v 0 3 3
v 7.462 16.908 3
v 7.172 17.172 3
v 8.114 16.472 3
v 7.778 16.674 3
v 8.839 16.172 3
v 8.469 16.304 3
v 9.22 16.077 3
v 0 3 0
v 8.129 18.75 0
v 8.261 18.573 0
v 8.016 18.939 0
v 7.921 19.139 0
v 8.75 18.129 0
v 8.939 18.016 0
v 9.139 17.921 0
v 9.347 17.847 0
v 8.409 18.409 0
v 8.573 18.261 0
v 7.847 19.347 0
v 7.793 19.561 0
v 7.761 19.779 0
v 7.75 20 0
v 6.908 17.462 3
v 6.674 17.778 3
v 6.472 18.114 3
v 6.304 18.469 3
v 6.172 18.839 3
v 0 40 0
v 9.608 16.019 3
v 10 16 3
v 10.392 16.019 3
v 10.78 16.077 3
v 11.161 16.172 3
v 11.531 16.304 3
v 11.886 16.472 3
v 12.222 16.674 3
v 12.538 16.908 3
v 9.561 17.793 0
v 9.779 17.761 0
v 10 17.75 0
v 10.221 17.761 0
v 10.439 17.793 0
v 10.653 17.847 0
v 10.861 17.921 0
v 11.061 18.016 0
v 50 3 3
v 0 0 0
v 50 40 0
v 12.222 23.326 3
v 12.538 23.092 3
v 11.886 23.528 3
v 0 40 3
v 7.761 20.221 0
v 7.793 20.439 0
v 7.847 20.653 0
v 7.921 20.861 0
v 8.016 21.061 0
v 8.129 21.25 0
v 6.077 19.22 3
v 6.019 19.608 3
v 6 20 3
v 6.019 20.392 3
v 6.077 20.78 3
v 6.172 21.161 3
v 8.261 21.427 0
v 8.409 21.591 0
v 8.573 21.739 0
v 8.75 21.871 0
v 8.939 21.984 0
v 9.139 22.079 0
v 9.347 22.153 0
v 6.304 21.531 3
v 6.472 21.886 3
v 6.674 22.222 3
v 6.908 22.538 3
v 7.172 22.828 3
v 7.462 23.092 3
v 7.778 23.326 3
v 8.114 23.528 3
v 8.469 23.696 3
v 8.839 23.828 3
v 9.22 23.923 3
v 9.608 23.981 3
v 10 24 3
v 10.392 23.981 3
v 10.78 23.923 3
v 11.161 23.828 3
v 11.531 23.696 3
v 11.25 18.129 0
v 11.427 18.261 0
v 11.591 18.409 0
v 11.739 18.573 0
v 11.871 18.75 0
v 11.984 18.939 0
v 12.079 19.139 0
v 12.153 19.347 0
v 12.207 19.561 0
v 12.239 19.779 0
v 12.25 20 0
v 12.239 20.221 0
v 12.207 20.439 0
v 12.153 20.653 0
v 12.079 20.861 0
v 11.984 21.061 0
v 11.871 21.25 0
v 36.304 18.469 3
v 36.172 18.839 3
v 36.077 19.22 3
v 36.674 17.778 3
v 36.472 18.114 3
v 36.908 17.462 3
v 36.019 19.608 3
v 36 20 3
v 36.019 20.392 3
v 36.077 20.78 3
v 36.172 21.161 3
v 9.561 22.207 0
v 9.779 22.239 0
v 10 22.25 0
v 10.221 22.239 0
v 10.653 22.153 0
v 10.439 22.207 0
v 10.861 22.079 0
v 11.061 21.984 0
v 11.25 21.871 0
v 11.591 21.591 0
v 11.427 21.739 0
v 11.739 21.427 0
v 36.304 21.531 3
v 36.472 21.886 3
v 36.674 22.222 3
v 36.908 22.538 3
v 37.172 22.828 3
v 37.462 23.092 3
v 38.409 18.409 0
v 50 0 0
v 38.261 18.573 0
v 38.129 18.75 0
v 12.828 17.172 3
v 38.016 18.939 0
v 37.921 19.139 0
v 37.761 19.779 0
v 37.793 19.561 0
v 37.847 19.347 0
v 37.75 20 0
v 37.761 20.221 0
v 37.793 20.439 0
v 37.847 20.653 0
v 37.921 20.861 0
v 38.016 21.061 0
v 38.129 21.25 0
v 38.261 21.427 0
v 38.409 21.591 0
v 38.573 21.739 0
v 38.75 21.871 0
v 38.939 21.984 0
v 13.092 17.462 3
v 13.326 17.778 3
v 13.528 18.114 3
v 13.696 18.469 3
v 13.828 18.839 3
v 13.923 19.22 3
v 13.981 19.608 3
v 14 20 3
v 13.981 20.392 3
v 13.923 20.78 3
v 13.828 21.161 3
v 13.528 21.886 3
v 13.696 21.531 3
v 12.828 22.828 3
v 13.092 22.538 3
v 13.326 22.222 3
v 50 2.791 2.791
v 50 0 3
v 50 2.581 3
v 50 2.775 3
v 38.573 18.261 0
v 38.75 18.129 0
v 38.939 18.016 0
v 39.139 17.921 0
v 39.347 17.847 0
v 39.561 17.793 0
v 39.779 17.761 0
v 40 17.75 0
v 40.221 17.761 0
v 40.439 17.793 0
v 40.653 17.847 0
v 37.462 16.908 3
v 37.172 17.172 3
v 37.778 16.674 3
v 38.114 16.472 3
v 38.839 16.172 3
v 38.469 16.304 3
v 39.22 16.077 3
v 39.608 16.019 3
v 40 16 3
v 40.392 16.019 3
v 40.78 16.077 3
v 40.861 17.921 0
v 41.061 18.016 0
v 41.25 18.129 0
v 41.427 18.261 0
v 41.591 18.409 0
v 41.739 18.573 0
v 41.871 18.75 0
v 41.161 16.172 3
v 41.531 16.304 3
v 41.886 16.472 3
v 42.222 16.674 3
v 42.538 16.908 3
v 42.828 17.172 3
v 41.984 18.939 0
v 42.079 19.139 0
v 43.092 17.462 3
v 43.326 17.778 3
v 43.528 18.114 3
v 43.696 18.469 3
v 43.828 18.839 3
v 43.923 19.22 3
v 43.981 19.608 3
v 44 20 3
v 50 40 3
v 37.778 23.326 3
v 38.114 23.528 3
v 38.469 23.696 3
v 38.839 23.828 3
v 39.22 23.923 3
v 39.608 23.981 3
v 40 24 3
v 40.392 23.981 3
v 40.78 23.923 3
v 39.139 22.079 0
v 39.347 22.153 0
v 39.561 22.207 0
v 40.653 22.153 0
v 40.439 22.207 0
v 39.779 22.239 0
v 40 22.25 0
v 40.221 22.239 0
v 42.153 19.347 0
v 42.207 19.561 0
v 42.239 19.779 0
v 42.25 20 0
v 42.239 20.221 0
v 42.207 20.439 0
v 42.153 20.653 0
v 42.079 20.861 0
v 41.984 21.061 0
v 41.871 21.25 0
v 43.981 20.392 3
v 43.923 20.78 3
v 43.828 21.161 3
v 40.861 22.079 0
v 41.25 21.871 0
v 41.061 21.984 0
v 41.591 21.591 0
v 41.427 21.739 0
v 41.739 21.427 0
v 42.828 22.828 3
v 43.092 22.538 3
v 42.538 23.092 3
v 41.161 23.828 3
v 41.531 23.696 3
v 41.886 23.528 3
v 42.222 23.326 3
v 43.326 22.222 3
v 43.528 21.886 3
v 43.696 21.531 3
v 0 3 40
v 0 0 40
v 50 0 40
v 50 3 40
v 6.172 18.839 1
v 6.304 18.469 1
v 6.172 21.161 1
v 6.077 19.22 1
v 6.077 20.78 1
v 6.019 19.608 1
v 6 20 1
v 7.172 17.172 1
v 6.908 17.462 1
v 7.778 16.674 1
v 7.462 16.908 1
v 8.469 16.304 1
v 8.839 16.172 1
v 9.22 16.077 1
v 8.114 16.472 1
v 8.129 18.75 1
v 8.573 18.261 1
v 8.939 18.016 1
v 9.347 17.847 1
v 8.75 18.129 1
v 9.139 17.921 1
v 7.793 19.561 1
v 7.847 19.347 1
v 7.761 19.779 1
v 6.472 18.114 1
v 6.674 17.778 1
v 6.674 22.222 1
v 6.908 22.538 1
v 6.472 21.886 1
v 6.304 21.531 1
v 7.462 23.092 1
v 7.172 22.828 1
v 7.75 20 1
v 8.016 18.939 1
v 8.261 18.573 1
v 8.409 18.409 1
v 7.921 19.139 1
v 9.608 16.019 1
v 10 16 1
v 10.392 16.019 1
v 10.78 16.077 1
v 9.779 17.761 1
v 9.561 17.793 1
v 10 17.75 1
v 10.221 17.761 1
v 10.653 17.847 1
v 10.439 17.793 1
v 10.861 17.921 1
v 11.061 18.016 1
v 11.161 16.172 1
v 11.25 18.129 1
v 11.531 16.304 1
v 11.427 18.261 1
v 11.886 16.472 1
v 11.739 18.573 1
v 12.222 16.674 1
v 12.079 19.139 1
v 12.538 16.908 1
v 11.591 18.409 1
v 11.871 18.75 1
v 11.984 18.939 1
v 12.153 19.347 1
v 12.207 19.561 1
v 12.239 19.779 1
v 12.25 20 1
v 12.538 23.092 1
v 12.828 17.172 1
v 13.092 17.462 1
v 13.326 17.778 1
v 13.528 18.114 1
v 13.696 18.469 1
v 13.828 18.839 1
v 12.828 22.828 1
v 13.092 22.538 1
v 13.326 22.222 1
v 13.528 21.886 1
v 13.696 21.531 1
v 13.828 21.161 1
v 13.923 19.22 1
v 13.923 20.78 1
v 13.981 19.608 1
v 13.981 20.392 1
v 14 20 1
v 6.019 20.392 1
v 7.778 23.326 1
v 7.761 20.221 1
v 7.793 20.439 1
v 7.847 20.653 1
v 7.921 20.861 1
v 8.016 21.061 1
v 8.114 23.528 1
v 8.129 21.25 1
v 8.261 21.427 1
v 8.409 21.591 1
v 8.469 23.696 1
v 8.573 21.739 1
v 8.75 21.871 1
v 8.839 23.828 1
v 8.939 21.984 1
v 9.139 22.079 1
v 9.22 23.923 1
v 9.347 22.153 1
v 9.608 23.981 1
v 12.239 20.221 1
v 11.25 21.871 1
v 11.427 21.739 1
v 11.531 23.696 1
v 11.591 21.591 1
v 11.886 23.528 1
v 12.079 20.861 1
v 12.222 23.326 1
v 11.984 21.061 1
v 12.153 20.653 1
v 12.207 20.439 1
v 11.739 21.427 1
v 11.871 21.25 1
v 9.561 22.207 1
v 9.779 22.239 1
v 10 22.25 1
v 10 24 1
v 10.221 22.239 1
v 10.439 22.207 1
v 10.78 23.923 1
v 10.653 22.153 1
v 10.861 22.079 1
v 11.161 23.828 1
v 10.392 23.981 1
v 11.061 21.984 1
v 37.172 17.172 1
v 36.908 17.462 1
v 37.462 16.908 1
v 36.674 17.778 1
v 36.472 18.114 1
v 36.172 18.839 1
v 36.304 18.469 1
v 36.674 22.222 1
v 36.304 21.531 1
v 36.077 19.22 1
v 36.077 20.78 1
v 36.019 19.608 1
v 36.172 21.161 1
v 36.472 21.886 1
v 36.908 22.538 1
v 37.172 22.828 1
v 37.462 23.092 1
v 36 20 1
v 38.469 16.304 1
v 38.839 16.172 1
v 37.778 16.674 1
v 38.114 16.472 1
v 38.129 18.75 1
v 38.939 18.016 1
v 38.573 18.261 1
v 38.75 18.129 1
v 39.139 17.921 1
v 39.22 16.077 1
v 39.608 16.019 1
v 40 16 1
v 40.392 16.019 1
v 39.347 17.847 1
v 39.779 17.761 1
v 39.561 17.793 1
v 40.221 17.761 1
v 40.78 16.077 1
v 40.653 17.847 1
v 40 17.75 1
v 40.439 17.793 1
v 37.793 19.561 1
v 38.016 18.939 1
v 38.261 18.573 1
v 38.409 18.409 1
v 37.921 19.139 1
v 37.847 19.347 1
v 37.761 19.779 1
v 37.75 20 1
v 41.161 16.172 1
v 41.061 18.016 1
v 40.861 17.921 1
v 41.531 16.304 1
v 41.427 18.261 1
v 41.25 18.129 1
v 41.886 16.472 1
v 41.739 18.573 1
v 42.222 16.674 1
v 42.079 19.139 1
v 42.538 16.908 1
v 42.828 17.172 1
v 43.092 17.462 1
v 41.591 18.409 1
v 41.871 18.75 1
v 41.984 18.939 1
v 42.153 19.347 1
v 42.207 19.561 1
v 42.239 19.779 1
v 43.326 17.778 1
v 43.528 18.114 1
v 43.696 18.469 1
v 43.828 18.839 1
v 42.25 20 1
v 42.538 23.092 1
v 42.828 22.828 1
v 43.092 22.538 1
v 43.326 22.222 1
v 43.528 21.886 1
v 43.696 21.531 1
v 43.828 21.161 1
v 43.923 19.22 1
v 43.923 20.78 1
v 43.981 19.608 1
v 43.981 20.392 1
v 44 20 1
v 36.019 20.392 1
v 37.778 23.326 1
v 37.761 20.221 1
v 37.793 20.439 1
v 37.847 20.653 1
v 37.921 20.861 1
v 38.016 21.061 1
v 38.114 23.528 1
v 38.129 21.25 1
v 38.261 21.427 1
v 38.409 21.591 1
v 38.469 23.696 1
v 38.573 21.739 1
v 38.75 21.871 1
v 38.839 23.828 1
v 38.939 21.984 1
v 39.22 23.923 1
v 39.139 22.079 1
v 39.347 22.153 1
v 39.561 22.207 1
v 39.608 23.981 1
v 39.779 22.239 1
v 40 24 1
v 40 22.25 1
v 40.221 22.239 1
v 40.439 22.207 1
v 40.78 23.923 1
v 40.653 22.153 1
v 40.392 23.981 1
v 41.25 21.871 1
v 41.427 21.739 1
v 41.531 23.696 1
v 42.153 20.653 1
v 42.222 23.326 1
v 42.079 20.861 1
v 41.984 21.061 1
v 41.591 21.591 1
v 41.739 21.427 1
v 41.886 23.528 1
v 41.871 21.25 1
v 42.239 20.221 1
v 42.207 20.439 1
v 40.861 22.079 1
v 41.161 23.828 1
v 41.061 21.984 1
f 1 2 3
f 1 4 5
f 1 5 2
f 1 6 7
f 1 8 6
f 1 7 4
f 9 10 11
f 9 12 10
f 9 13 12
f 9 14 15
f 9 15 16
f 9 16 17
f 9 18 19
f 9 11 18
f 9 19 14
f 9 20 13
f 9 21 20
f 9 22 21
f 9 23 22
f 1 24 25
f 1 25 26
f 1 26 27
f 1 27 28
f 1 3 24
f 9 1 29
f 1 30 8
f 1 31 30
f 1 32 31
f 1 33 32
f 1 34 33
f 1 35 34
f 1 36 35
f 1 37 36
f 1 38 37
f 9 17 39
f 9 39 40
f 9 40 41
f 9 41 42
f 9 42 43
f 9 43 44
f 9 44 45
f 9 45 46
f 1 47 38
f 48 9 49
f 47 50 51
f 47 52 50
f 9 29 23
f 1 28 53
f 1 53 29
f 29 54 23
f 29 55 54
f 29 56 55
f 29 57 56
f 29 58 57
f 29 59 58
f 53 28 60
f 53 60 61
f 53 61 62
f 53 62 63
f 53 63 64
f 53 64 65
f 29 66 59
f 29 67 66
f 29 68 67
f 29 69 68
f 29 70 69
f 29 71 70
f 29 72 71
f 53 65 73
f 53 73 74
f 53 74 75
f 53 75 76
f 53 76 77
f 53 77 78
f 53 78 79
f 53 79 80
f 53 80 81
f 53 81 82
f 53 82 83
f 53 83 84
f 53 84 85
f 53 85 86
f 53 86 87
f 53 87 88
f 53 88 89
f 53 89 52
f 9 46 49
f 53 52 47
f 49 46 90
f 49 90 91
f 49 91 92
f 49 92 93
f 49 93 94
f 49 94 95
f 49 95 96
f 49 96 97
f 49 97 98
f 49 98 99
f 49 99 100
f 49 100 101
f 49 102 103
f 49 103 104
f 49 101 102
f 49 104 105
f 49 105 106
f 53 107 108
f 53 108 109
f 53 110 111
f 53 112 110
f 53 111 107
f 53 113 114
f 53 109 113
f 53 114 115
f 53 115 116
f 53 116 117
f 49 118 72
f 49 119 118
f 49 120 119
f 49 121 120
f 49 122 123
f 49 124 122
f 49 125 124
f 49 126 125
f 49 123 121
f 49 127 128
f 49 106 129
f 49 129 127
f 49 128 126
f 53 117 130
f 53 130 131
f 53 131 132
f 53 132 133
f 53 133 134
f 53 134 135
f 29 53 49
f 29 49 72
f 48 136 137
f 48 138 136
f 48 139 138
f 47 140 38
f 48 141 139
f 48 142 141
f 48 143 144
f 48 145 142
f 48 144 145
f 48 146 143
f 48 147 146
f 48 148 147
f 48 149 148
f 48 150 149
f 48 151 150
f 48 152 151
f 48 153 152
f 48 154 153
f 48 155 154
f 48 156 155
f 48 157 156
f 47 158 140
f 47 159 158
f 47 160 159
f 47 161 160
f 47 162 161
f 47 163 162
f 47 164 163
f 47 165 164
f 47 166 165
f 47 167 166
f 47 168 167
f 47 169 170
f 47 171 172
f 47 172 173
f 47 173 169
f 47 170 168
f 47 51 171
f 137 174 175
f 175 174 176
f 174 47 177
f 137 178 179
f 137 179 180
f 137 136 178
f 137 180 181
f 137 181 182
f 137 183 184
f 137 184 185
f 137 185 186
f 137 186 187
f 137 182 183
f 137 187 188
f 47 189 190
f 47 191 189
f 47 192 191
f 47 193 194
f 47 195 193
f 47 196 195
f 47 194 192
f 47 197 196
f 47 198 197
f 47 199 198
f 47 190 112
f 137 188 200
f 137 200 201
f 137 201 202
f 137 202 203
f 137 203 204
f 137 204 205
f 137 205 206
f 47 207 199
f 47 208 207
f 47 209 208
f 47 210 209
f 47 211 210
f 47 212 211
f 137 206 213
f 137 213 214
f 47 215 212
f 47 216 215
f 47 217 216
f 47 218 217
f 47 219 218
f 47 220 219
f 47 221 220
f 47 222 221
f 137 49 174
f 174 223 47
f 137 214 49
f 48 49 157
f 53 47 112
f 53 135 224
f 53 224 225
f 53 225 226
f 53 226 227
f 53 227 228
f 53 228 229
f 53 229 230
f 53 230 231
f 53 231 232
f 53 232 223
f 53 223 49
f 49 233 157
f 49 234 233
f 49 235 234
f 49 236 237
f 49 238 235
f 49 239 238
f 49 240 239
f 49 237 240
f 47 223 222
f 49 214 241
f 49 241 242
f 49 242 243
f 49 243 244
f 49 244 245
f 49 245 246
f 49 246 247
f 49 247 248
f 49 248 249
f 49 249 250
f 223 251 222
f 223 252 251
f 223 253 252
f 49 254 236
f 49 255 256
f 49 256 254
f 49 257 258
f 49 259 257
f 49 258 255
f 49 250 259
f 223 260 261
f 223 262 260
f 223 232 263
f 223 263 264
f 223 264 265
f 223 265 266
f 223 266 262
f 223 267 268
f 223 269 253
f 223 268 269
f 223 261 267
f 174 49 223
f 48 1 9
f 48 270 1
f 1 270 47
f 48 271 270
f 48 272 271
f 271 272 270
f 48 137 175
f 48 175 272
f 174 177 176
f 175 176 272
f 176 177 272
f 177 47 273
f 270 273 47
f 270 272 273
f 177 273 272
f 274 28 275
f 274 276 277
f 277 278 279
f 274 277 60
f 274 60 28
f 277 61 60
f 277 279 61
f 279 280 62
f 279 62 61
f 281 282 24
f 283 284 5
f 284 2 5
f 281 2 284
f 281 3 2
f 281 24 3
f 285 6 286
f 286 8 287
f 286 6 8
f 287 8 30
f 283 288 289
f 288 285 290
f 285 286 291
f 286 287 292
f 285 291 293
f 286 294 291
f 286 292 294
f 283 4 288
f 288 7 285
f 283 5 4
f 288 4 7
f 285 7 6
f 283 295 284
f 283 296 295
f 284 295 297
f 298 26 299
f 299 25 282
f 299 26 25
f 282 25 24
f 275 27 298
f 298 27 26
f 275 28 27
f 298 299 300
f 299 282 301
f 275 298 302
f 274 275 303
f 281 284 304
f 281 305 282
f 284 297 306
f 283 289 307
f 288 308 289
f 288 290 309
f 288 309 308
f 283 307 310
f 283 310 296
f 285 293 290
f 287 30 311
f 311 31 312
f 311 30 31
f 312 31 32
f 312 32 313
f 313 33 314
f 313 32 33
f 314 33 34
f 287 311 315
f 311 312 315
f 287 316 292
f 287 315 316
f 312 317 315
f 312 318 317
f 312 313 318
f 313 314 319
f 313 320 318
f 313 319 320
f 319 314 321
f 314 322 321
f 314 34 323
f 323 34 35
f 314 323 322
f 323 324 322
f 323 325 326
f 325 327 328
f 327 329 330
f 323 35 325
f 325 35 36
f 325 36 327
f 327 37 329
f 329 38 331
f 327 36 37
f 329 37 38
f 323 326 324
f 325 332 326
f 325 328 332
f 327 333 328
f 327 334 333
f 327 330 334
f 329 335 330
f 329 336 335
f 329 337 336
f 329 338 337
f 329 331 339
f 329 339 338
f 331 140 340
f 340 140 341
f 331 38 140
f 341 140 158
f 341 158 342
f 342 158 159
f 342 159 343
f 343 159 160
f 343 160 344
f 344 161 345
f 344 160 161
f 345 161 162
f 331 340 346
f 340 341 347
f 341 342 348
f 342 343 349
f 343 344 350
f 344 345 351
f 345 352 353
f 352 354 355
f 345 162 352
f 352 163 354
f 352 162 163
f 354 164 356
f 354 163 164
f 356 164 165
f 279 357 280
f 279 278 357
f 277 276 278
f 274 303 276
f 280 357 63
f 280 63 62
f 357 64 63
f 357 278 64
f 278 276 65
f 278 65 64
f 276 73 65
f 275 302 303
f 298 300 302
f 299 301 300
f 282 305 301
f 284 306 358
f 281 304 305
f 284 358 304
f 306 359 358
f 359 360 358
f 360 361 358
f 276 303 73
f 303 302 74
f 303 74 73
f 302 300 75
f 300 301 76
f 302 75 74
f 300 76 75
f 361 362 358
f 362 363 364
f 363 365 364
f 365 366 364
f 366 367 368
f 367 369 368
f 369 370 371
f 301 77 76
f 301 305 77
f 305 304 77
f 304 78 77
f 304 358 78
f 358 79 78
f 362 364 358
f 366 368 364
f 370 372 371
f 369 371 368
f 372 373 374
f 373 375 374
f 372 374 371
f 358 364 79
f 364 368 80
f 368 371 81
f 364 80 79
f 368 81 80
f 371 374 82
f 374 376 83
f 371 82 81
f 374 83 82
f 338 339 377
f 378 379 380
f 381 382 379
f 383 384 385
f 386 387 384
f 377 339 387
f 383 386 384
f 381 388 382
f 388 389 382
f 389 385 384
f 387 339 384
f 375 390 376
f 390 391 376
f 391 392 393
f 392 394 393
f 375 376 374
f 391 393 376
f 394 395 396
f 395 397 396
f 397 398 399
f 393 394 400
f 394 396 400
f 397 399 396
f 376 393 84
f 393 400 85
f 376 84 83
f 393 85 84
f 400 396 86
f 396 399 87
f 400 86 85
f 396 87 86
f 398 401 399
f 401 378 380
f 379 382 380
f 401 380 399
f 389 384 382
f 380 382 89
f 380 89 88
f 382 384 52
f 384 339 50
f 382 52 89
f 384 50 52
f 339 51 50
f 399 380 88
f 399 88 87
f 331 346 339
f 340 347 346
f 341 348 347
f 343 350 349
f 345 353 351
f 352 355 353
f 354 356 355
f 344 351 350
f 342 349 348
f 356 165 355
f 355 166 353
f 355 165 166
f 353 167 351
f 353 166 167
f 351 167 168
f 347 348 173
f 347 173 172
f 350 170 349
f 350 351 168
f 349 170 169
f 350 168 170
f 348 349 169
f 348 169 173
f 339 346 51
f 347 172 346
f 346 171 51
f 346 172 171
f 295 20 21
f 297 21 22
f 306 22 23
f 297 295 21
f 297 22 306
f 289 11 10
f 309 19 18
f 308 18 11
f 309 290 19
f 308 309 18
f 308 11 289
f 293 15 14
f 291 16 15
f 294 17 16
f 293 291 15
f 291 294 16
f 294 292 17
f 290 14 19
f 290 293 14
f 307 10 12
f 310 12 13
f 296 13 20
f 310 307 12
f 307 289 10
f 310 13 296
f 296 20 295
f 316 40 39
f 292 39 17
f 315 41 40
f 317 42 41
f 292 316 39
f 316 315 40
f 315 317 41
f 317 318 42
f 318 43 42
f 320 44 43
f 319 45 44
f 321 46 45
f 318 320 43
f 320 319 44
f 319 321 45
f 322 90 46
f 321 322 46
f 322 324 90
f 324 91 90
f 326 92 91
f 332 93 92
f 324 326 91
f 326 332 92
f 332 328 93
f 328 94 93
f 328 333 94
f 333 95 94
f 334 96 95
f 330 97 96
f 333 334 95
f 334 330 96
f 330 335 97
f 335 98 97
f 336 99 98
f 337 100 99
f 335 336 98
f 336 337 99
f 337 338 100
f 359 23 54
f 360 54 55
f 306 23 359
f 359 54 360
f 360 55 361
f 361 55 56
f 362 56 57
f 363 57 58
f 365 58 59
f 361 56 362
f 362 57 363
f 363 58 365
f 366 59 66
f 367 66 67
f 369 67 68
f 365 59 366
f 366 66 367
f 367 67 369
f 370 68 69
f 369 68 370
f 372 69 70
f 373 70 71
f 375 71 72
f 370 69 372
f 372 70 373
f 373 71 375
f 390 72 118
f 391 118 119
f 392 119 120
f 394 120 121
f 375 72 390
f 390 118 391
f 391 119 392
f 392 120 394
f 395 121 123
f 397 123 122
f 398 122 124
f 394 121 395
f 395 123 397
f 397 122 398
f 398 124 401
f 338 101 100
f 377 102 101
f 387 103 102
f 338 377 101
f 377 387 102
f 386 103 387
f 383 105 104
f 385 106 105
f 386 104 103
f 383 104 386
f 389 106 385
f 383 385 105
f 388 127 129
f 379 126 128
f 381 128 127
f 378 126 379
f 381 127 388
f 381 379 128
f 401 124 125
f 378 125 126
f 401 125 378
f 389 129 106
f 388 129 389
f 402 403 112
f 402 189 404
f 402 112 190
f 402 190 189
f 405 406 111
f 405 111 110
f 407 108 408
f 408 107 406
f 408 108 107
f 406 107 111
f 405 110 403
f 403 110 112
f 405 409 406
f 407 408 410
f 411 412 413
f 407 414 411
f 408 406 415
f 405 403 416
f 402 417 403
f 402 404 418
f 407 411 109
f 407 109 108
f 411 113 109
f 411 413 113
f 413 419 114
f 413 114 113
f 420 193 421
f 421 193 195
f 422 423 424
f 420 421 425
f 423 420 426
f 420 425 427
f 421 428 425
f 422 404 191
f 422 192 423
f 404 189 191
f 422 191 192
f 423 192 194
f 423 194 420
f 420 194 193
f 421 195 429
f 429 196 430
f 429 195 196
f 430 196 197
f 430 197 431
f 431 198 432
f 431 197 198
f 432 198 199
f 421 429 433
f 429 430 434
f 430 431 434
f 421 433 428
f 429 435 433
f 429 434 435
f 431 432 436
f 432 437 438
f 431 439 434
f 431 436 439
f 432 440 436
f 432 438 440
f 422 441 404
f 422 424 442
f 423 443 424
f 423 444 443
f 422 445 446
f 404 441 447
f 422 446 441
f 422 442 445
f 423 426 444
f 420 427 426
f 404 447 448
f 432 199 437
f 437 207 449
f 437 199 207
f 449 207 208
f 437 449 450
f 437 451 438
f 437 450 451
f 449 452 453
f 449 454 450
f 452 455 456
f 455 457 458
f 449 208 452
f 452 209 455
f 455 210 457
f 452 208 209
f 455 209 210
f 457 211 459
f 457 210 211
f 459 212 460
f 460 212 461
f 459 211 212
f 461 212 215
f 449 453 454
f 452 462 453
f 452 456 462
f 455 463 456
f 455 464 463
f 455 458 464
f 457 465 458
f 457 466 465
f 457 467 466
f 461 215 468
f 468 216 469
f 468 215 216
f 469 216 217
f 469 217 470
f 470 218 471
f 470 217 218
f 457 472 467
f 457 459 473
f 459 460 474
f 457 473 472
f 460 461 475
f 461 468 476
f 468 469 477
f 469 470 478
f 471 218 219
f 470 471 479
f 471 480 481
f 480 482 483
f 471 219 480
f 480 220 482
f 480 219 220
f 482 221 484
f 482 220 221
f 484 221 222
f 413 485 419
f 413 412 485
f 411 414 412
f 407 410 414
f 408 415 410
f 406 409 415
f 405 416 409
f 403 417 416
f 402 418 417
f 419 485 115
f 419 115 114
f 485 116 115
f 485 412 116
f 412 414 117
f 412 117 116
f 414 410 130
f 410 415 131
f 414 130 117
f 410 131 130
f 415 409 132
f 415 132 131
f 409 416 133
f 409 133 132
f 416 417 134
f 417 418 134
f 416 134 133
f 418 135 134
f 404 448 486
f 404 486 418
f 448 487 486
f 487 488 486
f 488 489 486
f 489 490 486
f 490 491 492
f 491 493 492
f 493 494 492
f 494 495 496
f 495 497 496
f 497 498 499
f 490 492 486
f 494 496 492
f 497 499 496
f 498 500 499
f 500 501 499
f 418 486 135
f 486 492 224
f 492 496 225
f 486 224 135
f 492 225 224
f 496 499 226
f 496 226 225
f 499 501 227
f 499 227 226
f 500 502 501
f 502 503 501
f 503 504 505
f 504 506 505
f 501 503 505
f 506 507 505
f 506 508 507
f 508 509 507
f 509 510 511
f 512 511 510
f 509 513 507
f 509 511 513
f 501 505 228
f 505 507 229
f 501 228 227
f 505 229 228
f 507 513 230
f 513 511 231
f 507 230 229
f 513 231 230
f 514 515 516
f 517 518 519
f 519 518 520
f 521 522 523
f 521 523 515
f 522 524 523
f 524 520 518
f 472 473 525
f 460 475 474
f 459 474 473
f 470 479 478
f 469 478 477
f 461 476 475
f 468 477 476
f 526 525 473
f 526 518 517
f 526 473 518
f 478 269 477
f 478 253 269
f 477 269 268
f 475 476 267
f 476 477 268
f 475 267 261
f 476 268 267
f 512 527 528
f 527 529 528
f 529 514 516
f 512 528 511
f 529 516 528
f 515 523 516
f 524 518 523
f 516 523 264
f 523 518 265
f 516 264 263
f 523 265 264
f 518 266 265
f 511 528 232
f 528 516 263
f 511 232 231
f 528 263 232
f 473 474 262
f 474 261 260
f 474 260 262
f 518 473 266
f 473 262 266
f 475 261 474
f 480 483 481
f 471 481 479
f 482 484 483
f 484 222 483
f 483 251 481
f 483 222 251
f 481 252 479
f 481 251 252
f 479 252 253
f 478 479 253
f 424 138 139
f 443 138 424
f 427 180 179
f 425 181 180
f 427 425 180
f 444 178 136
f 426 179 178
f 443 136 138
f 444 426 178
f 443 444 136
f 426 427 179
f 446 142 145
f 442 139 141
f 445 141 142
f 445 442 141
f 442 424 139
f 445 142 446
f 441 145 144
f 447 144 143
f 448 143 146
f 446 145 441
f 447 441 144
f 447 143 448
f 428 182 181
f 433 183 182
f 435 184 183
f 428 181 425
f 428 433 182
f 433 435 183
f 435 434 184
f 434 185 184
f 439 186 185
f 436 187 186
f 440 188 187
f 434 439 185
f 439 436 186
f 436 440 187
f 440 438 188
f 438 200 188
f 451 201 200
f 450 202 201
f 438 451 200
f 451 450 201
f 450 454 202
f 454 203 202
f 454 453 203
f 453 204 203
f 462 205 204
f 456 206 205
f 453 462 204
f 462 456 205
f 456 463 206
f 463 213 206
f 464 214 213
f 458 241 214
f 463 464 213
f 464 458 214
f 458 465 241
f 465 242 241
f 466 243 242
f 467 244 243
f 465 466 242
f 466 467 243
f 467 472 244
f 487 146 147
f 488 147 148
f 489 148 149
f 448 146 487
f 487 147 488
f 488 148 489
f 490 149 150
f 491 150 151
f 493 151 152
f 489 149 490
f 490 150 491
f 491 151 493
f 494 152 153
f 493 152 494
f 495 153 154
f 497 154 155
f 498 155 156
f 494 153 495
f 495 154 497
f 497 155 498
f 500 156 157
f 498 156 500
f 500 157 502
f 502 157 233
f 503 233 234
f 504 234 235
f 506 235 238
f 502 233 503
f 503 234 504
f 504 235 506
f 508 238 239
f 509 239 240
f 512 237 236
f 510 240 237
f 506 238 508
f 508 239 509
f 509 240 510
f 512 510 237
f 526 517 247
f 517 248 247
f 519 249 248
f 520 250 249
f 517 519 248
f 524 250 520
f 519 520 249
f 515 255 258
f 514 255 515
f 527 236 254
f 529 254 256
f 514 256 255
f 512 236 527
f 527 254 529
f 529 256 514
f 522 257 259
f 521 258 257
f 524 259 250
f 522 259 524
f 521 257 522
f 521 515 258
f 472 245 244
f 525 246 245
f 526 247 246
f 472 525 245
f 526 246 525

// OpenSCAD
// OpenSCAD: L-bracket with countersunk holes for M4 screws
// Inner corner at origin. Horizontal flange extends +Y, vertical flange extends +Z.

$fn = 64;

width = 50;     // X dimension
depth = 40;     // Y dimension for horizontal flange
height = 40;    // Z dimension for vertical flange
thickness = 3;  // plate thickness for both flanges

// Hole parameters
clearance_d = 4.5;    // through hole diameter for M4
countersink_d = 8;    // counterbore diameter
countersink_depth = 2;

module l_bracket() {
    // Horizontal flange: spans X:0..width, Y:0..depth, Z:0..thickness
    // Vertical flange: spans X:0..width, Y:0..thickness, Z:0..height
    union() {
        cube([width, depth, thickness], center=false);
        cube([width, thickness, height], center=false);
    }
}

module countersunk_through_z(x, y) {
    // Countersink on outer (+Z) side of horizontal flange.
    // Countersink: cylinder top at Z=thickness, depth into plate = countersink_depth
    translate([x, y, thickness - countersink_depth])
        cylinder(h=countersink_depth, d=countersink_d);
    // Through hole: extend well beyond plate to ensure cut-through
    translate([x, y, -10])
        cylinder(h=30 + thickness, d=clearance_d);
}

module countersunk_through_y(x, z) {
    // Countersink on outer (+Y) side of vertical flange.
    // We'll orient a cylinder along Y by rotating around X by 90 degrees.
    // Countersink: from Y = thickness - countersink_depth to Y = thickness
    rotate([90,0,0])
        translate([x, thickness - countersink_depth, z])
            cylinder(h=countersink_depth, d=countersink_d);
    // Through hole along Y: extend well beyond to cut through
    rotate([90,0,0])
        translate([x, -10, z])
            cylinder(h=30 + thickness, d=clearance_d);
}

// Hole positions: along each face centerline
x_positions = [10, width - 10];
y_center = depth / 2;
z_center = height / 2;

difference() {
    l_bracket();

    // Horizontal flange holes (axis Z), countersink on +Z side
    for (x_pos = x_positions)
        countersunk_through_z(x_pos, y_center);

    // Vertical flange holes (axis Y), countersink on +Y side
    for (x_pos = x_positions)
        countersunk_through_y(x_pos, z_center);
}
